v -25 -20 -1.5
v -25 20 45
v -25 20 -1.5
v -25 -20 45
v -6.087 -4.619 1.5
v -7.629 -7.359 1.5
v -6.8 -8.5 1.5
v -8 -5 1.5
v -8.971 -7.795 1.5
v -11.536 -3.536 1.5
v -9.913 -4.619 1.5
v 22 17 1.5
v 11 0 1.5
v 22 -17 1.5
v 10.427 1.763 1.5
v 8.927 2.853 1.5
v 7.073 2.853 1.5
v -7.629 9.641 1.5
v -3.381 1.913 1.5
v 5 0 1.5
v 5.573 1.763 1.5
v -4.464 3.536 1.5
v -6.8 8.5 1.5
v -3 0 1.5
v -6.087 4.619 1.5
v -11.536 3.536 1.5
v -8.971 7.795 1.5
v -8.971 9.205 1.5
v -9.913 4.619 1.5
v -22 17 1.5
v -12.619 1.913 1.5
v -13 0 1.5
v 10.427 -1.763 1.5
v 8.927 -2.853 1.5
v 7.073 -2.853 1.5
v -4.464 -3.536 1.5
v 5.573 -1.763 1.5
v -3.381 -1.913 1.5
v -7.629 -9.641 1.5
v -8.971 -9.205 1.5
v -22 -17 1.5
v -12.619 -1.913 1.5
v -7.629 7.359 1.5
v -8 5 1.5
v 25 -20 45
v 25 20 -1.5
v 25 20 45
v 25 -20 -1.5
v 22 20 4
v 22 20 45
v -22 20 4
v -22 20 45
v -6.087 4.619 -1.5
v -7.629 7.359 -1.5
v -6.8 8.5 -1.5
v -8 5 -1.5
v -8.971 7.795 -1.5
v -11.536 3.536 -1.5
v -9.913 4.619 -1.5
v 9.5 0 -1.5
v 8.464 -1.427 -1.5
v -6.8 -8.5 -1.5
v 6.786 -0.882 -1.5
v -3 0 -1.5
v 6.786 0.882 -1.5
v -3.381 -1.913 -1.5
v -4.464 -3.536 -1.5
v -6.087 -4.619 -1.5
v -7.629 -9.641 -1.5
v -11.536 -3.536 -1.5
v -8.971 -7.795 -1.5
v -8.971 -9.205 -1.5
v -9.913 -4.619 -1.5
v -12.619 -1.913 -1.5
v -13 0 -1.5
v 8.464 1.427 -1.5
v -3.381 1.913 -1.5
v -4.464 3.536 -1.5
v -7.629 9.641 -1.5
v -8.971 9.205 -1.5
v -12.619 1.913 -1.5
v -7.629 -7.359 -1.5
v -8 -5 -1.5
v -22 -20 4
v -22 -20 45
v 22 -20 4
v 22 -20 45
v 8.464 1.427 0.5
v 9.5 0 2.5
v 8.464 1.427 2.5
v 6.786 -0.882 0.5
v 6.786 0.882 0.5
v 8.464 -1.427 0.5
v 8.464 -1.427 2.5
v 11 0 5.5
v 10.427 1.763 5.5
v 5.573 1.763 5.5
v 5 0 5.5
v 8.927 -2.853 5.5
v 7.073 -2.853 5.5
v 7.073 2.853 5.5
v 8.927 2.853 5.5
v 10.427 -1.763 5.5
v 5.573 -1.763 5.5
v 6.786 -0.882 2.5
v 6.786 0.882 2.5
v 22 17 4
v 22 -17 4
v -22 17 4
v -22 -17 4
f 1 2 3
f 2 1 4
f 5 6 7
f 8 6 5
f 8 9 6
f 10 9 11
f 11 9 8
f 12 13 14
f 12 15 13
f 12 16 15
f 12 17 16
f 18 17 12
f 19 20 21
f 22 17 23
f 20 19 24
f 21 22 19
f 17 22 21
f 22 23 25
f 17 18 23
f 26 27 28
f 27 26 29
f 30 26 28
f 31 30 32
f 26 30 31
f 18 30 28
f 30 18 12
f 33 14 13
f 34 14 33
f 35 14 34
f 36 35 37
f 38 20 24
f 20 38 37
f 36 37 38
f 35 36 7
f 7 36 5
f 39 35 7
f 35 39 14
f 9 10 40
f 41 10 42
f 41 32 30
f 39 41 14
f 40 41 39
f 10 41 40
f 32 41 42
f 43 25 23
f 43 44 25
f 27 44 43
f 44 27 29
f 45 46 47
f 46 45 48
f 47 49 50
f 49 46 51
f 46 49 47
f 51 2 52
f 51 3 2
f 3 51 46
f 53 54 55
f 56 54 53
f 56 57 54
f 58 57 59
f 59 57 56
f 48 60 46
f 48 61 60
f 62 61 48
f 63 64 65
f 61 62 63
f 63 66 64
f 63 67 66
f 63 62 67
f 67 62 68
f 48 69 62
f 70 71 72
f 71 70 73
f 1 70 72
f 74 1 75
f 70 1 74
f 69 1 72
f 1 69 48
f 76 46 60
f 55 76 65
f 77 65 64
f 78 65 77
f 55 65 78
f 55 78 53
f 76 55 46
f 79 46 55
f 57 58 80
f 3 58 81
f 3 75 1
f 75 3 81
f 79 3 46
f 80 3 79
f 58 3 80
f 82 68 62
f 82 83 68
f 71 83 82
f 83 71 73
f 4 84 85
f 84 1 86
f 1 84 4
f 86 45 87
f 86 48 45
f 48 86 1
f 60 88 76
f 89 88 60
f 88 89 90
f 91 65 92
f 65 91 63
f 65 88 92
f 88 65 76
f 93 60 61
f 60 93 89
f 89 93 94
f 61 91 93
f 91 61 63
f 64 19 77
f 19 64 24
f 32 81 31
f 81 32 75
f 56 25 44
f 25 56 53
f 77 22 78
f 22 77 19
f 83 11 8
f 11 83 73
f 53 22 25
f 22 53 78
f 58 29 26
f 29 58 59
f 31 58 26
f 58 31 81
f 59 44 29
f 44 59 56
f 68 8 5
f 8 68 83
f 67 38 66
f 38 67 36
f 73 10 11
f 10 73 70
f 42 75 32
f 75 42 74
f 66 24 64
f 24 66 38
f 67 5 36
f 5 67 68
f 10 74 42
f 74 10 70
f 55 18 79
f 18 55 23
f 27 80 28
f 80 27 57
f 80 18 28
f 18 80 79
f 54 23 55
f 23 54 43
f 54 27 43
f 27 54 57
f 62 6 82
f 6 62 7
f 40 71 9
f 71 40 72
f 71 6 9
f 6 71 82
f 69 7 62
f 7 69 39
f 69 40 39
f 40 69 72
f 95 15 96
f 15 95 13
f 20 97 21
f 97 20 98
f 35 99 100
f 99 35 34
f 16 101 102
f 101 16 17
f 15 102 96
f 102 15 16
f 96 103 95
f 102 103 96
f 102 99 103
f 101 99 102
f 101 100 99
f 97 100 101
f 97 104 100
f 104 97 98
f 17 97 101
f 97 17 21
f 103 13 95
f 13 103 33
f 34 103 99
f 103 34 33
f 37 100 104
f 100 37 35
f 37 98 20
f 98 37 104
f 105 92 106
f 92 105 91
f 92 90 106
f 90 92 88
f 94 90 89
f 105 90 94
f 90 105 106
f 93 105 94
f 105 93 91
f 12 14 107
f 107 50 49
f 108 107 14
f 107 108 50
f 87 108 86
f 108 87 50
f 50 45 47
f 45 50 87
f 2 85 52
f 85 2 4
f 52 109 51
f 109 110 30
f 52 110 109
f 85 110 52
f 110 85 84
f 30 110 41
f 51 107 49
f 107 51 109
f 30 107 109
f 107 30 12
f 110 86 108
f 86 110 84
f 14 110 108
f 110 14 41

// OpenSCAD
// Ese
//    2017/5/31 Yutaka Usui


d=50.0;
w=40.0;
height=45;

motorhole_d=17;   // motor biss distance


gear_d=16;        // gear shaft to motor shart distance

t=3;


// Base
difference() {
    translate([0,0,0]) {
      cube([d,w,t], center = true);
   }

    // shaft hole
	translate([   gear_d/2, 0,0]) { cylinder(10, 1.5, 1.5, center=true); }
    translate([  -gear_d/2, 0,0]) { cylinder(10, 5, 5, center=true); }
    
    // motor hole
	translate([  -gear_d/2,  motorhole_d/2,0]) { cylinder(10, 1.2, 1.2, center=true); }
	translate([  -gear_d/2, -(motorhole_d/2),0]) { cylinder(10, 1.2, 1.2, center=true); }
	
}

// 
translate([d/2-t/2, 0, height/2]) {
    cube([3,w,height], center = true);
}

//
translate([-d/2+t/2,0, height/2]) {
    cube([3,w,height], center = true);
}

translate([  0, w/2-t/2, 2]) {
    cube([d,t,4], center = true);
}

translate([  0, -w/2+t/2, 2]) {
    cube([d,t,4], center = true);
}


// main-shaft uke
translate([   gear_d/2 , 0, 3]) {
    difference() {
      cylinder(5, 3, 3, center=true);
      translate([0 , 0, -3]) {
        cylinder(5, 1.5, 1.5, center=true);
      }
    }
}
